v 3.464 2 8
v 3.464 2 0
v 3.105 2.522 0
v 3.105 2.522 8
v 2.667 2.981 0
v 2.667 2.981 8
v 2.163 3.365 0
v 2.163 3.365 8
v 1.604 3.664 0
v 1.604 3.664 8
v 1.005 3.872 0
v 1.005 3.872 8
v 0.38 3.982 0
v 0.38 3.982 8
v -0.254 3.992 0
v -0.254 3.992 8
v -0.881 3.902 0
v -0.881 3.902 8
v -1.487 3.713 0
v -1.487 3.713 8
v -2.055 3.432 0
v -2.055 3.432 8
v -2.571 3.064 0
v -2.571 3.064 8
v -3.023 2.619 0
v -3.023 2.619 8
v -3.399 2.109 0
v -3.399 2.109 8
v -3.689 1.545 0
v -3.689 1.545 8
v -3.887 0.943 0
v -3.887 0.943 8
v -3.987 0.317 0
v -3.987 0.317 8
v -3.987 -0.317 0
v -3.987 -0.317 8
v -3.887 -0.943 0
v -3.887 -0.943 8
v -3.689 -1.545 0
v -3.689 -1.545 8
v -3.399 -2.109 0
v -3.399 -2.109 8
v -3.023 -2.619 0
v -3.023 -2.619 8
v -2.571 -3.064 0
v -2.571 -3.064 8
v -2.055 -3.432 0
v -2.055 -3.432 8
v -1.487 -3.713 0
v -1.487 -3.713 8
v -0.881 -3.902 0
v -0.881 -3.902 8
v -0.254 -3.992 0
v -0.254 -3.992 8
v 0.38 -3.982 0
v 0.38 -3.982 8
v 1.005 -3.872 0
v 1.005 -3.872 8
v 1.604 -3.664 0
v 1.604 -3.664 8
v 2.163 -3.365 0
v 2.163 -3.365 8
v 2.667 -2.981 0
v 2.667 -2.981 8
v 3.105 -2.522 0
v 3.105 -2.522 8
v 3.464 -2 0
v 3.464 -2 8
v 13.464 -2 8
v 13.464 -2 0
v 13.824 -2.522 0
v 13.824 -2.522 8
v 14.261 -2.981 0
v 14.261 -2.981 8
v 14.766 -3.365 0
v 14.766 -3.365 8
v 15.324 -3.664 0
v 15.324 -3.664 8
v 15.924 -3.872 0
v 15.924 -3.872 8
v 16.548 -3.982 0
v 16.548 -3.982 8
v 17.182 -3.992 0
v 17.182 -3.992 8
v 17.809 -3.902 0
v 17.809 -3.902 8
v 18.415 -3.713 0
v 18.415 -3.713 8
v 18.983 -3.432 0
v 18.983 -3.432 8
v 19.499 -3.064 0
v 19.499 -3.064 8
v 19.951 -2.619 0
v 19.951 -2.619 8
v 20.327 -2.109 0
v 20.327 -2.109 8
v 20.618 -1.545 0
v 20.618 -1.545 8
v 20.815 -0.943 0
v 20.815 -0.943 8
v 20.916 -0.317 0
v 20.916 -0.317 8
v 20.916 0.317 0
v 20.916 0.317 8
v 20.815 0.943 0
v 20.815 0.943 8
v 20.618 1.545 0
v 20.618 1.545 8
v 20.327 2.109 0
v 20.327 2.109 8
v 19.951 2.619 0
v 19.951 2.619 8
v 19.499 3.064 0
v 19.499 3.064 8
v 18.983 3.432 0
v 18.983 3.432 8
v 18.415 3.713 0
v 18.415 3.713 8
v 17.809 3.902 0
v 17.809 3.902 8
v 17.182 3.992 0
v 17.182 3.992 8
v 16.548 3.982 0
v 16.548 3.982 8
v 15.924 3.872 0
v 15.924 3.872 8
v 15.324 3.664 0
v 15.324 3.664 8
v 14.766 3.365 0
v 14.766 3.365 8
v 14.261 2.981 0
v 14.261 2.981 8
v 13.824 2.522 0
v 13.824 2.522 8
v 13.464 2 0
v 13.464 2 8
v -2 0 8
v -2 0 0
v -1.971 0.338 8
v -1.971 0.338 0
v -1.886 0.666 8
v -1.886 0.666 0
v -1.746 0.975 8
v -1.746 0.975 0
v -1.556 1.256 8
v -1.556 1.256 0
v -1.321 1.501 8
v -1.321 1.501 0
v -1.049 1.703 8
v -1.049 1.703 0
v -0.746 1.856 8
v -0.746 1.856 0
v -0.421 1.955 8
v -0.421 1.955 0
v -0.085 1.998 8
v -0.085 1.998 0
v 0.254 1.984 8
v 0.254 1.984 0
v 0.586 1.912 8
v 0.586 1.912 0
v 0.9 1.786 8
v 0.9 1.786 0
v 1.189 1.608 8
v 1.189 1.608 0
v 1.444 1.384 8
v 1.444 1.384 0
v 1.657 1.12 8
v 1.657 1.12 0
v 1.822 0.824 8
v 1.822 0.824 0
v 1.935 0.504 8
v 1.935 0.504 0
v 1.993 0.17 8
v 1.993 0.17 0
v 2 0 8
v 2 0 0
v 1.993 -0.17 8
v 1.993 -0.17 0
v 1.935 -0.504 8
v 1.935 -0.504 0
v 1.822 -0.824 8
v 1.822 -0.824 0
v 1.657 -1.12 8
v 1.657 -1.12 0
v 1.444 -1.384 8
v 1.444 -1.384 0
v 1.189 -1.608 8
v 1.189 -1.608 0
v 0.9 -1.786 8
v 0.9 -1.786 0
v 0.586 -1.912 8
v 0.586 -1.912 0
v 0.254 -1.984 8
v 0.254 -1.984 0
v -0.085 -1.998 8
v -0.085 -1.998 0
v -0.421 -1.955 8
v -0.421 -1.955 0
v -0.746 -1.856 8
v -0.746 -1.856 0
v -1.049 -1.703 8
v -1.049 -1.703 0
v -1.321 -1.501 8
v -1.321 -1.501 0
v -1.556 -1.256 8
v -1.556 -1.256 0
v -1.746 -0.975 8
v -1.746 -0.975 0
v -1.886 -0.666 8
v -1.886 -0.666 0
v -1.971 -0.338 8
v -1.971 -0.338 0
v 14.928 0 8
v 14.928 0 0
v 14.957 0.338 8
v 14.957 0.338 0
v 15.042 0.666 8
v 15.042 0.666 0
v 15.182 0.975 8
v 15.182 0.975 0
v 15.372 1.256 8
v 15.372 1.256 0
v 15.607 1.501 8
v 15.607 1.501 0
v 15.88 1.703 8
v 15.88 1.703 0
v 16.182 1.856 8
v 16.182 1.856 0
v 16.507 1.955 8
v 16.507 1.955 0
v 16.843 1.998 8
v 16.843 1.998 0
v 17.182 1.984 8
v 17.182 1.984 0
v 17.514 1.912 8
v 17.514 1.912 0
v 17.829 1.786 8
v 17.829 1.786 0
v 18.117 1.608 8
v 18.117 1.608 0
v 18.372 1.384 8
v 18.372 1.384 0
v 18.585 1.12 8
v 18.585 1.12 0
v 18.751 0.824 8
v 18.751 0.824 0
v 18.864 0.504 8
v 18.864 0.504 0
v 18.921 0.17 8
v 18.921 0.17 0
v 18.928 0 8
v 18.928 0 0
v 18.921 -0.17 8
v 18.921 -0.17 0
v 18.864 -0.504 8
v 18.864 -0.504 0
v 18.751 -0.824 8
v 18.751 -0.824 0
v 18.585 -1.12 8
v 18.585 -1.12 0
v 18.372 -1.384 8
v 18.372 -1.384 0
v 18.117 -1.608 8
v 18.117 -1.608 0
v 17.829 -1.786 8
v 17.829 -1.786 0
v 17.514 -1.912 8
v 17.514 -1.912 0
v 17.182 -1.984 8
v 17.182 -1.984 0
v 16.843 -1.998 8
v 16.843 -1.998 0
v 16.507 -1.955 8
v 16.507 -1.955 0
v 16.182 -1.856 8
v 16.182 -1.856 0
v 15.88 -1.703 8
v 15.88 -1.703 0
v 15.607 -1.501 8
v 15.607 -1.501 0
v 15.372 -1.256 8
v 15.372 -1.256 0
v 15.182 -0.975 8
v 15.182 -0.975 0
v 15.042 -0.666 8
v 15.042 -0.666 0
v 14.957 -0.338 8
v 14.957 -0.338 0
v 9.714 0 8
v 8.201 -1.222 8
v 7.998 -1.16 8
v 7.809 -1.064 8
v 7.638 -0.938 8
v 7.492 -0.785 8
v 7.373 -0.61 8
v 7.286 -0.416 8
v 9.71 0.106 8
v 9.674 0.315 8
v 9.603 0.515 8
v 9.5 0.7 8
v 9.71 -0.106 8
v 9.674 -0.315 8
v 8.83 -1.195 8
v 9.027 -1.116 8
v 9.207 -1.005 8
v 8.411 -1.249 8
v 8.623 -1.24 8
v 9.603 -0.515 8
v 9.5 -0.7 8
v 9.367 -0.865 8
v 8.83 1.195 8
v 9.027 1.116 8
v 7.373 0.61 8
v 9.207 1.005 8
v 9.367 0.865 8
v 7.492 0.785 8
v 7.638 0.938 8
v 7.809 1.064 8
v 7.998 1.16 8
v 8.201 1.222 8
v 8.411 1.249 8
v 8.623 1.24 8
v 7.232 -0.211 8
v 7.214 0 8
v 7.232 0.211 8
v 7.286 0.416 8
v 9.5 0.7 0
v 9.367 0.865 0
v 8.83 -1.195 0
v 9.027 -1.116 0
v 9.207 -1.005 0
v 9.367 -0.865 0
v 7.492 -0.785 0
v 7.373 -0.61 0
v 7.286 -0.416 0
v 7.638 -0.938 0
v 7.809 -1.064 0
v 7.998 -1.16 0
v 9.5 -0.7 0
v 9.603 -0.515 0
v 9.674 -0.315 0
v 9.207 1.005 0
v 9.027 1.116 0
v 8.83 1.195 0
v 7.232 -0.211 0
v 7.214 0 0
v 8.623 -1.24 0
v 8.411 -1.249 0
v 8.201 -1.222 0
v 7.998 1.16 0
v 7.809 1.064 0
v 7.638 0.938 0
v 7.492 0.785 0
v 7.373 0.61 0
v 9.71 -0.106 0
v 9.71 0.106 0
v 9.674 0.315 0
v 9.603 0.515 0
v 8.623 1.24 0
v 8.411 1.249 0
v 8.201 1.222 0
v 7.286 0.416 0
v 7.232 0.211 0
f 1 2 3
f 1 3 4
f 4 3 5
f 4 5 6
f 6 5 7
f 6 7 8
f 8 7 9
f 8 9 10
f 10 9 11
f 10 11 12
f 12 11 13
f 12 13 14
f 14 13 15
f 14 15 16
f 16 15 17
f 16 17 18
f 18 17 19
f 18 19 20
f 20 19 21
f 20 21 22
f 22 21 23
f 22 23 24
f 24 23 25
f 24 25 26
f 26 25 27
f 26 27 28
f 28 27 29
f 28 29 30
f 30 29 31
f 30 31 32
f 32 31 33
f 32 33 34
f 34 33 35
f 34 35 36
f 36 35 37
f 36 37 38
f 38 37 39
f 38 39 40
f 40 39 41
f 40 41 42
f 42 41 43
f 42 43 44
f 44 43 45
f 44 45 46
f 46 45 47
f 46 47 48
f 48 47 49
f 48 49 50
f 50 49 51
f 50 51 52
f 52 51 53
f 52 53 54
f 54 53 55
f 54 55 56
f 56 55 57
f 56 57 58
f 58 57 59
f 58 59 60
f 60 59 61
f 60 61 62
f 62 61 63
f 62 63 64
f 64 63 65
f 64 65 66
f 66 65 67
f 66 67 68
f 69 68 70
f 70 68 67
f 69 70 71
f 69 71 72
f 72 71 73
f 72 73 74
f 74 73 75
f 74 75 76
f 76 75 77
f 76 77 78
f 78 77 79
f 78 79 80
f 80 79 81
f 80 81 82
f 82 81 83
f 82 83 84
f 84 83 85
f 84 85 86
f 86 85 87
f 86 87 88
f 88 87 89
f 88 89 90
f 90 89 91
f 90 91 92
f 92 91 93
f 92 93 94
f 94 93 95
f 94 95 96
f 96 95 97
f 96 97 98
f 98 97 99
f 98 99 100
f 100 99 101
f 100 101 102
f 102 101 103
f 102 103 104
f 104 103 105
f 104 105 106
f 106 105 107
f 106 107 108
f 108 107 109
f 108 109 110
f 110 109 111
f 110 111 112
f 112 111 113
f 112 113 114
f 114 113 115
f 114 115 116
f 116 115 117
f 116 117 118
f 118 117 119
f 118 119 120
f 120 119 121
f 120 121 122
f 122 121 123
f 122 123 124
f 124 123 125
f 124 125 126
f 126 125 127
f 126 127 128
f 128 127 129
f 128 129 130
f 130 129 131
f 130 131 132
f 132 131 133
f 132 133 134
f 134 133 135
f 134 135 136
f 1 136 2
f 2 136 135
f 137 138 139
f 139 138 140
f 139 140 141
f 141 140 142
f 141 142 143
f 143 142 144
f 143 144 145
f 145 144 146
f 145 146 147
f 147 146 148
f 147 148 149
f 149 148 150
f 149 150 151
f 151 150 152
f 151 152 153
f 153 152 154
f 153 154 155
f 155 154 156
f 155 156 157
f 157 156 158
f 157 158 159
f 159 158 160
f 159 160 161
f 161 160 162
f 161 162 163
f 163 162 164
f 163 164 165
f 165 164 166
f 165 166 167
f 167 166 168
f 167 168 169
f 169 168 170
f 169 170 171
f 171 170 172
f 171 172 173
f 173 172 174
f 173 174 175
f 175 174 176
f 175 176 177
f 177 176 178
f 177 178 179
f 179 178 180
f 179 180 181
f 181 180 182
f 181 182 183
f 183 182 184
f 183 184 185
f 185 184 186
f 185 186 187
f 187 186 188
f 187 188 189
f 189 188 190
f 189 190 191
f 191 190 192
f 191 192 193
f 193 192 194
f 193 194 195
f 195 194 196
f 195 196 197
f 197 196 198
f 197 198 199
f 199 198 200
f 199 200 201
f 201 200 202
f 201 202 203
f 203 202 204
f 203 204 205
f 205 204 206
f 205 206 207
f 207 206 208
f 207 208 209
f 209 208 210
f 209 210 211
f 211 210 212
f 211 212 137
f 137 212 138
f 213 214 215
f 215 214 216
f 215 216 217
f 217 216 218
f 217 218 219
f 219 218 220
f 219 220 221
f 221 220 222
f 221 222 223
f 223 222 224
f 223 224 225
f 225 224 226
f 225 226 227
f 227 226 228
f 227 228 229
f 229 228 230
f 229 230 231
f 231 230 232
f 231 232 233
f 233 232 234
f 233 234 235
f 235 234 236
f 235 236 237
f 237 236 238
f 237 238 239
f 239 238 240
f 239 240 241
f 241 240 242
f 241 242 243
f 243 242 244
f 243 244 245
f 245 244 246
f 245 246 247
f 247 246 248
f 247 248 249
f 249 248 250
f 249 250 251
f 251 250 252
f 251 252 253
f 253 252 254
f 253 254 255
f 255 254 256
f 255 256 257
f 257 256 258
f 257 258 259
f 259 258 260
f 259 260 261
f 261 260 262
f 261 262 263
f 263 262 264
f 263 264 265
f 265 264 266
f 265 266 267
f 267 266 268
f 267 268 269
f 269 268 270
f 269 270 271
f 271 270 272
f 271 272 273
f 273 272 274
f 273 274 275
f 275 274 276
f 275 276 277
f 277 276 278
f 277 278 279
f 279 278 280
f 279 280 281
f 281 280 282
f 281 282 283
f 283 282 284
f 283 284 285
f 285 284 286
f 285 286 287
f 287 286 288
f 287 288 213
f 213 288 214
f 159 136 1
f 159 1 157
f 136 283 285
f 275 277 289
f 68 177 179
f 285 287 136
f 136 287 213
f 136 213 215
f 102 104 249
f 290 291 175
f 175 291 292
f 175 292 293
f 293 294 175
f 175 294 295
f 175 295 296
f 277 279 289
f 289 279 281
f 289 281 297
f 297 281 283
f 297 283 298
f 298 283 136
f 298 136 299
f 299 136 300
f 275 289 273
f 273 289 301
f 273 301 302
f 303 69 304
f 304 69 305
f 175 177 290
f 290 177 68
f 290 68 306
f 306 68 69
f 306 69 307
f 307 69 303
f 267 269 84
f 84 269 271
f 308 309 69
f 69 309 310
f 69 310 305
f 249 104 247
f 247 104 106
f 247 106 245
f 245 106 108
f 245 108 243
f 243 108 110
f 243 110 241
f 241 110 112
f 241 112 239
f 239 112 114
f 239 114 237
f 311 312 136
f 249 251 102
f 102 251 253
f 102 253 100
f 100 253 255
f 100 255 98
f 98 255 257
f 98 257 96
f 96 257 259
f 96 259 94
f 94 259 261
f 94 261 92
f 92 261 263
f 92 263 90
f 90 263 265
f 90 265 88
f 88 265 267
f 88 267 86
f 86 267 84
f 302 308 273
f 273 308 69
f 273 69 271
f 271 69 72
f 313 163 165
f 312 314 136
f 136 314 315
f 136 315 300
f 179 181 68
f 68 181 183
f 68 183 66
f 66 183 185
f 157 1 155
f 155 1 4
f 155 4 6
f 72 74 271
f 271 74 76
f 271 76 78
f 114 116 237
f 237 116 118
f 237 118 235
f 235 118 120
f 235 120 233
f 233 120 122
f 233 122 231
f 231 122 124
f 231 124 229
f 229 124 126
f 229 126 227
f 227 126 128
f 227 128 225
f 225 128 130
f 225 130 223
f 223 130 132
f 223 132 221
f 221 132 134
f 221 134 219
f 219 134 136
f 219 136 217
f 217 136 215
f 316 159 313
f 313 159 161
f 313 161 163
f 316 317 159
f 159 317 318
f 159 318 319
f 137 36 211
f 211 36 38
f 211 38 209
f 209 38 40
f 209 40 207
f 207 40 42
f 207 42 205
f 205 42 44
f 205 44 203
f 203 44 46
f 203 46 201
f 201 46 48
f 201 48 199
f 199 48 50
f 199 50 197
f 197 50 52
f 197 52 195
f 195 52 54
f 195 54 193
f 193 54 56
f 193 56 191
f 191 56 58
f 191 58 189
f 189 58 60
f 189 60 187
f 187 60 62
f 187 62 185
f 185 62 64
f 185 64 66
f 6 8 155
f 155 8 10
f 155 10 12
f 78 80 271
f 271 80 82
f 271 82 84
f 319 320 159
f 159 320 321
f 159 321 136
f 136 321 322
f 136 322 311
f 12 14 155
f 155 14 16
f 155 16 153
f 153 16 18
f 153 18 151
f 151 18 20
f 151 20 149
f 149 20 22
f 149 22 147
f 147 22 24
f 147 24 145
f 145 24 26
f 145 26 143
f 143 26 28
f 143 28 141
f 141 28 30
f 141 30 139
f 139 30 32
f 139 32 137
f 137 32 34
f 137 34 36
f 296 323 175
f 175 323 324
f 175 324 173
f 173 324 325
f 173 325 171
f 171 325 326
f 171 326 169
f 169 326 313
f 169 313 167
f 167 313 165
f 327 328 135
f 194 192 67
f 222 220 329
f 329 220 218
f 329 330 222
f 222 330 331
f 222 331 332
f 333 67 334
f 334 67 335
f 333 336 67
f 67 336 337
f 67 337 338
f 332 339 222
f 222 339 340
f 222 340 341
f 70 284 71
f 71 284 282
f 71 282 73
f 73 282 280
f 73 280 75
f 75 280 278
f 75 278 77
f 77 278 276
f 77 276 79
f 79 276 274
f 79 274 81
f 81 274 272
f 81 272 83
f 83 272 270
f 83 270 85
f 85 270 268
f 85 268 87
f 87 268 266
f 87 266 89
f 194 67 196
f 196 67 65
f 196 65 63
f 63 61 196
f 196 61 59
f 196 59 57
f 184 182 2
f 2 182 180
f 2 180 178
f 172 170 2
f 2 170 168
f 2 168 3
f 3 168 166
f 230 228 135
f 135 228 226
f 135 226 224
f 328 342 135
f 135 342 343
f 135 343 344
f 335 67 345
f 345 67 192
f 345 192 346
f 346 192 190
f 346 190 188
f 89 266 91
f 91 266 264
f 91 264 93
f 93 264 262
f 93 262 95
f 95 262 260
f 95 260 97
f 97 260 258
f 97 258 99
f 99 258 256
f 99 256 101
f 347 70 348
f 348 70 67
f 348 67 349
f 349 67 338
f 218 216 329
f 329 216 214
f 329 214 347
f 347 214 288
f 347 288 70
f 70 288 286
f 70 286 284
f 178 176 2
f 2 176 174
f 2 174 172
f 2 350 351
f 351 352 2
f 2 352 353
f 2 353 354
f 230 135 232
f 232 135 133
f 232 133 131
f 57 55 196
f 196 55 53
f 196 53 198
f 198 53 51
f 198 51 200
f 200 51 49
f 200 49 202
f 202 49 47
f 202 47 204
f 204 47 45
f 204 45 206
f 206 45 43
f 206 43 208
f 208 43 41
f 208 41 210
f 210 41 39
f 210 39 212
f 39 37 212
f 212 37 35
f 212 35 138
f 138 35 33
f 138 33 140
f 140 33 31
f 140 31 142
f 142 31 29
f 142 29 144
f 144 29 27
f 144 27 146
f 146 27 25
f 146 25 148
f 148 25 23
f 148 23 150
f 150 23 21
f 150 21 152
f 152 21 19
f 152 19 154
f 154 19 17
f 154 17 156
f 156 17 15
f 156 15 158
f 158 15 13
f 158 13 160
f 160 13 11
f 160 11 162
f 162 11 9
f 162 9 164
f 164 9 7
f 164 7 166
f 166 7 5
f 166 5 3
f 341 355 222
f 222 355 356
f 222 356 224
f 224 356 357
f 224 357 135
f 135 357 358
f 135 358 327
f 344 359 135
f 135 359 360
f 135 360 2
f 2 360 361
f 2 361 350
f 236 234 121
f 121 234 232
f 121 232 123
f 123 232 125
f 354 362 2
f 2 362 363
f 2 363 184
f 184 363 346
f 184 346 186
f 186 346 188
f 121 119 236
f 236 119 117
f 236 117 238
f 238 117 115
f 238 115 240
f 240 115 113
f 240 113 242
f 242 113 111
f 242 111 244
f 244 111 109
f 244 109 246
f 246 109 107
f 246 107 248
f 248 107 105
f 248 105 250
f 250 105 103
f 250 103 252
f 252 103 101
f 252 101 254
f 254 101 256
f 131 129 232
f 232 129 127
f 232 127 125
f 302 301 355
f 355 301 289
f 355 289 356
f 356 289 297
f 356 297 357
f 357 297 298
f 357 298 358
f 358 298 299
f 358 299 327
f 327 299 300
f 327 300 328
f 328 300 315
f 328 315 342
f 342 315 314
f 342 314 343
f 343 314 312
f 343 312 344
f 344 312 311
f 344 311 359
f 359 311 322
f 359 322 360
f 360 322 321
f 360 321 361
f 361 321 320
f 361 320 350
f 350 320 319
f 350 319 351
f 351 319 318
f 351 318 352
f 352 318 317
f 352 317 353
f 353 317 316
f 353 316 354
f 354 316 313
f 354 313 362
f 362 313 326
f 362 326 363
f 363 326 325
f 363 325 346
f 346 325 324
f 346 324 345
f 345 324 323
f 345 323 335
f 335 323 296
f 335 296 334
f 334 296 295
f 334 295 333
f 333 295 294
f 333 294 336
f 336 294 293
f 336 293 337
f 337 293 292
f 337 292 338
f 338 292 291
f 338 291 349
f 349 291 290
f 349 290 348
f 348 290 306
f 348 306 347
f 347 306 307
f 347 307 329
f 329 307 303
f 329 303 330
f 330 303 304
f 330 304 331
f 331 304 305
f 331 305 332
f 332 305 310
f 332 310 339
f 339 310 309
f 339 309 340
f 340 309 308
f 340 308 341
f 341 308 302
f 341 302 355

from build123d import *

# Parameters (mm, degrees)
CROQUIS1_R              = 4
CROQUIS1_R_2            = 2
SALIENTE_EXTRUIR1_DEPTH = 8
CROQUIS3_R              = 1.25
CORTAR_EXTRUIR1_DEPTH   = 21.5


with BuildPart() as part:
    # Croquis1 → Saliente-Extruir1 (new body)
    # profile 1 of 4: a face of its own
    with BuildSketch(Plane.XY):
        Circle(CROQUIS1_R)
        Circle(CROQUIS1_R_2, mode=Mode.SUBTRACT)
    # profile 2 of 4: a face of its own
    with BuildSketch(Plane.XY):
        with BuildLine():
            Line((8.464101615, 2), (3.464101615, 2))
            ThreePointArc((3.464101615, 2), (3.863703305, 1.03527618), (4, 0))
            ThreePointArc((4, 0), (3.863703305, -1.03527618), (3.464101615, -2))
            Line((3.464101615, -2), (8.464101615, -2))
            Line((8.464101615, -2), (8.464101615, 2))
        make_face()
    # profile 3 of 4: a face of its own
    with BuildSketch(Plane.XY):
        with BuildLine():
            Line((13.464101615, 2), (8.464101615, 2))
            Line((8.464101615, 2), (8.464101615, -2))
            Line((8.464101615, -2), (13.464101615, -2))
            ThreePointArc((13.464101615, -2), (12.92820323, 0), (13.464101615, 2))
        make_face()
    # profile 4 of 4: a face of its own
    with BuildSketch(Plane.XY):
        with Locations((16.92820323, 0)):
            Circle(CROQUIS1_R)
        with Locations((16.92820323, 0)):
            Circle(CROQUIS1_R_2, mode=Mode.SUBTRACT)
    extrude(amount=SALIENTE_EXTRUIR1_DEPTH)

    # Croquis3 → Cortar-Extruir1 (cut)
    with BuildSketch(Plane(origin=(0, 0, 0), x_dir=(-1, 0, 0), z_dir=(0, 0, -1))):
        with Locations((-8.464101615, 0)):
            Circle(CROQUIS3_R)
    extrude(amount=-CORTAR_EXTRUIR1_DEPTH, mode=Mode.SUBTRACT)


solid = part.part
